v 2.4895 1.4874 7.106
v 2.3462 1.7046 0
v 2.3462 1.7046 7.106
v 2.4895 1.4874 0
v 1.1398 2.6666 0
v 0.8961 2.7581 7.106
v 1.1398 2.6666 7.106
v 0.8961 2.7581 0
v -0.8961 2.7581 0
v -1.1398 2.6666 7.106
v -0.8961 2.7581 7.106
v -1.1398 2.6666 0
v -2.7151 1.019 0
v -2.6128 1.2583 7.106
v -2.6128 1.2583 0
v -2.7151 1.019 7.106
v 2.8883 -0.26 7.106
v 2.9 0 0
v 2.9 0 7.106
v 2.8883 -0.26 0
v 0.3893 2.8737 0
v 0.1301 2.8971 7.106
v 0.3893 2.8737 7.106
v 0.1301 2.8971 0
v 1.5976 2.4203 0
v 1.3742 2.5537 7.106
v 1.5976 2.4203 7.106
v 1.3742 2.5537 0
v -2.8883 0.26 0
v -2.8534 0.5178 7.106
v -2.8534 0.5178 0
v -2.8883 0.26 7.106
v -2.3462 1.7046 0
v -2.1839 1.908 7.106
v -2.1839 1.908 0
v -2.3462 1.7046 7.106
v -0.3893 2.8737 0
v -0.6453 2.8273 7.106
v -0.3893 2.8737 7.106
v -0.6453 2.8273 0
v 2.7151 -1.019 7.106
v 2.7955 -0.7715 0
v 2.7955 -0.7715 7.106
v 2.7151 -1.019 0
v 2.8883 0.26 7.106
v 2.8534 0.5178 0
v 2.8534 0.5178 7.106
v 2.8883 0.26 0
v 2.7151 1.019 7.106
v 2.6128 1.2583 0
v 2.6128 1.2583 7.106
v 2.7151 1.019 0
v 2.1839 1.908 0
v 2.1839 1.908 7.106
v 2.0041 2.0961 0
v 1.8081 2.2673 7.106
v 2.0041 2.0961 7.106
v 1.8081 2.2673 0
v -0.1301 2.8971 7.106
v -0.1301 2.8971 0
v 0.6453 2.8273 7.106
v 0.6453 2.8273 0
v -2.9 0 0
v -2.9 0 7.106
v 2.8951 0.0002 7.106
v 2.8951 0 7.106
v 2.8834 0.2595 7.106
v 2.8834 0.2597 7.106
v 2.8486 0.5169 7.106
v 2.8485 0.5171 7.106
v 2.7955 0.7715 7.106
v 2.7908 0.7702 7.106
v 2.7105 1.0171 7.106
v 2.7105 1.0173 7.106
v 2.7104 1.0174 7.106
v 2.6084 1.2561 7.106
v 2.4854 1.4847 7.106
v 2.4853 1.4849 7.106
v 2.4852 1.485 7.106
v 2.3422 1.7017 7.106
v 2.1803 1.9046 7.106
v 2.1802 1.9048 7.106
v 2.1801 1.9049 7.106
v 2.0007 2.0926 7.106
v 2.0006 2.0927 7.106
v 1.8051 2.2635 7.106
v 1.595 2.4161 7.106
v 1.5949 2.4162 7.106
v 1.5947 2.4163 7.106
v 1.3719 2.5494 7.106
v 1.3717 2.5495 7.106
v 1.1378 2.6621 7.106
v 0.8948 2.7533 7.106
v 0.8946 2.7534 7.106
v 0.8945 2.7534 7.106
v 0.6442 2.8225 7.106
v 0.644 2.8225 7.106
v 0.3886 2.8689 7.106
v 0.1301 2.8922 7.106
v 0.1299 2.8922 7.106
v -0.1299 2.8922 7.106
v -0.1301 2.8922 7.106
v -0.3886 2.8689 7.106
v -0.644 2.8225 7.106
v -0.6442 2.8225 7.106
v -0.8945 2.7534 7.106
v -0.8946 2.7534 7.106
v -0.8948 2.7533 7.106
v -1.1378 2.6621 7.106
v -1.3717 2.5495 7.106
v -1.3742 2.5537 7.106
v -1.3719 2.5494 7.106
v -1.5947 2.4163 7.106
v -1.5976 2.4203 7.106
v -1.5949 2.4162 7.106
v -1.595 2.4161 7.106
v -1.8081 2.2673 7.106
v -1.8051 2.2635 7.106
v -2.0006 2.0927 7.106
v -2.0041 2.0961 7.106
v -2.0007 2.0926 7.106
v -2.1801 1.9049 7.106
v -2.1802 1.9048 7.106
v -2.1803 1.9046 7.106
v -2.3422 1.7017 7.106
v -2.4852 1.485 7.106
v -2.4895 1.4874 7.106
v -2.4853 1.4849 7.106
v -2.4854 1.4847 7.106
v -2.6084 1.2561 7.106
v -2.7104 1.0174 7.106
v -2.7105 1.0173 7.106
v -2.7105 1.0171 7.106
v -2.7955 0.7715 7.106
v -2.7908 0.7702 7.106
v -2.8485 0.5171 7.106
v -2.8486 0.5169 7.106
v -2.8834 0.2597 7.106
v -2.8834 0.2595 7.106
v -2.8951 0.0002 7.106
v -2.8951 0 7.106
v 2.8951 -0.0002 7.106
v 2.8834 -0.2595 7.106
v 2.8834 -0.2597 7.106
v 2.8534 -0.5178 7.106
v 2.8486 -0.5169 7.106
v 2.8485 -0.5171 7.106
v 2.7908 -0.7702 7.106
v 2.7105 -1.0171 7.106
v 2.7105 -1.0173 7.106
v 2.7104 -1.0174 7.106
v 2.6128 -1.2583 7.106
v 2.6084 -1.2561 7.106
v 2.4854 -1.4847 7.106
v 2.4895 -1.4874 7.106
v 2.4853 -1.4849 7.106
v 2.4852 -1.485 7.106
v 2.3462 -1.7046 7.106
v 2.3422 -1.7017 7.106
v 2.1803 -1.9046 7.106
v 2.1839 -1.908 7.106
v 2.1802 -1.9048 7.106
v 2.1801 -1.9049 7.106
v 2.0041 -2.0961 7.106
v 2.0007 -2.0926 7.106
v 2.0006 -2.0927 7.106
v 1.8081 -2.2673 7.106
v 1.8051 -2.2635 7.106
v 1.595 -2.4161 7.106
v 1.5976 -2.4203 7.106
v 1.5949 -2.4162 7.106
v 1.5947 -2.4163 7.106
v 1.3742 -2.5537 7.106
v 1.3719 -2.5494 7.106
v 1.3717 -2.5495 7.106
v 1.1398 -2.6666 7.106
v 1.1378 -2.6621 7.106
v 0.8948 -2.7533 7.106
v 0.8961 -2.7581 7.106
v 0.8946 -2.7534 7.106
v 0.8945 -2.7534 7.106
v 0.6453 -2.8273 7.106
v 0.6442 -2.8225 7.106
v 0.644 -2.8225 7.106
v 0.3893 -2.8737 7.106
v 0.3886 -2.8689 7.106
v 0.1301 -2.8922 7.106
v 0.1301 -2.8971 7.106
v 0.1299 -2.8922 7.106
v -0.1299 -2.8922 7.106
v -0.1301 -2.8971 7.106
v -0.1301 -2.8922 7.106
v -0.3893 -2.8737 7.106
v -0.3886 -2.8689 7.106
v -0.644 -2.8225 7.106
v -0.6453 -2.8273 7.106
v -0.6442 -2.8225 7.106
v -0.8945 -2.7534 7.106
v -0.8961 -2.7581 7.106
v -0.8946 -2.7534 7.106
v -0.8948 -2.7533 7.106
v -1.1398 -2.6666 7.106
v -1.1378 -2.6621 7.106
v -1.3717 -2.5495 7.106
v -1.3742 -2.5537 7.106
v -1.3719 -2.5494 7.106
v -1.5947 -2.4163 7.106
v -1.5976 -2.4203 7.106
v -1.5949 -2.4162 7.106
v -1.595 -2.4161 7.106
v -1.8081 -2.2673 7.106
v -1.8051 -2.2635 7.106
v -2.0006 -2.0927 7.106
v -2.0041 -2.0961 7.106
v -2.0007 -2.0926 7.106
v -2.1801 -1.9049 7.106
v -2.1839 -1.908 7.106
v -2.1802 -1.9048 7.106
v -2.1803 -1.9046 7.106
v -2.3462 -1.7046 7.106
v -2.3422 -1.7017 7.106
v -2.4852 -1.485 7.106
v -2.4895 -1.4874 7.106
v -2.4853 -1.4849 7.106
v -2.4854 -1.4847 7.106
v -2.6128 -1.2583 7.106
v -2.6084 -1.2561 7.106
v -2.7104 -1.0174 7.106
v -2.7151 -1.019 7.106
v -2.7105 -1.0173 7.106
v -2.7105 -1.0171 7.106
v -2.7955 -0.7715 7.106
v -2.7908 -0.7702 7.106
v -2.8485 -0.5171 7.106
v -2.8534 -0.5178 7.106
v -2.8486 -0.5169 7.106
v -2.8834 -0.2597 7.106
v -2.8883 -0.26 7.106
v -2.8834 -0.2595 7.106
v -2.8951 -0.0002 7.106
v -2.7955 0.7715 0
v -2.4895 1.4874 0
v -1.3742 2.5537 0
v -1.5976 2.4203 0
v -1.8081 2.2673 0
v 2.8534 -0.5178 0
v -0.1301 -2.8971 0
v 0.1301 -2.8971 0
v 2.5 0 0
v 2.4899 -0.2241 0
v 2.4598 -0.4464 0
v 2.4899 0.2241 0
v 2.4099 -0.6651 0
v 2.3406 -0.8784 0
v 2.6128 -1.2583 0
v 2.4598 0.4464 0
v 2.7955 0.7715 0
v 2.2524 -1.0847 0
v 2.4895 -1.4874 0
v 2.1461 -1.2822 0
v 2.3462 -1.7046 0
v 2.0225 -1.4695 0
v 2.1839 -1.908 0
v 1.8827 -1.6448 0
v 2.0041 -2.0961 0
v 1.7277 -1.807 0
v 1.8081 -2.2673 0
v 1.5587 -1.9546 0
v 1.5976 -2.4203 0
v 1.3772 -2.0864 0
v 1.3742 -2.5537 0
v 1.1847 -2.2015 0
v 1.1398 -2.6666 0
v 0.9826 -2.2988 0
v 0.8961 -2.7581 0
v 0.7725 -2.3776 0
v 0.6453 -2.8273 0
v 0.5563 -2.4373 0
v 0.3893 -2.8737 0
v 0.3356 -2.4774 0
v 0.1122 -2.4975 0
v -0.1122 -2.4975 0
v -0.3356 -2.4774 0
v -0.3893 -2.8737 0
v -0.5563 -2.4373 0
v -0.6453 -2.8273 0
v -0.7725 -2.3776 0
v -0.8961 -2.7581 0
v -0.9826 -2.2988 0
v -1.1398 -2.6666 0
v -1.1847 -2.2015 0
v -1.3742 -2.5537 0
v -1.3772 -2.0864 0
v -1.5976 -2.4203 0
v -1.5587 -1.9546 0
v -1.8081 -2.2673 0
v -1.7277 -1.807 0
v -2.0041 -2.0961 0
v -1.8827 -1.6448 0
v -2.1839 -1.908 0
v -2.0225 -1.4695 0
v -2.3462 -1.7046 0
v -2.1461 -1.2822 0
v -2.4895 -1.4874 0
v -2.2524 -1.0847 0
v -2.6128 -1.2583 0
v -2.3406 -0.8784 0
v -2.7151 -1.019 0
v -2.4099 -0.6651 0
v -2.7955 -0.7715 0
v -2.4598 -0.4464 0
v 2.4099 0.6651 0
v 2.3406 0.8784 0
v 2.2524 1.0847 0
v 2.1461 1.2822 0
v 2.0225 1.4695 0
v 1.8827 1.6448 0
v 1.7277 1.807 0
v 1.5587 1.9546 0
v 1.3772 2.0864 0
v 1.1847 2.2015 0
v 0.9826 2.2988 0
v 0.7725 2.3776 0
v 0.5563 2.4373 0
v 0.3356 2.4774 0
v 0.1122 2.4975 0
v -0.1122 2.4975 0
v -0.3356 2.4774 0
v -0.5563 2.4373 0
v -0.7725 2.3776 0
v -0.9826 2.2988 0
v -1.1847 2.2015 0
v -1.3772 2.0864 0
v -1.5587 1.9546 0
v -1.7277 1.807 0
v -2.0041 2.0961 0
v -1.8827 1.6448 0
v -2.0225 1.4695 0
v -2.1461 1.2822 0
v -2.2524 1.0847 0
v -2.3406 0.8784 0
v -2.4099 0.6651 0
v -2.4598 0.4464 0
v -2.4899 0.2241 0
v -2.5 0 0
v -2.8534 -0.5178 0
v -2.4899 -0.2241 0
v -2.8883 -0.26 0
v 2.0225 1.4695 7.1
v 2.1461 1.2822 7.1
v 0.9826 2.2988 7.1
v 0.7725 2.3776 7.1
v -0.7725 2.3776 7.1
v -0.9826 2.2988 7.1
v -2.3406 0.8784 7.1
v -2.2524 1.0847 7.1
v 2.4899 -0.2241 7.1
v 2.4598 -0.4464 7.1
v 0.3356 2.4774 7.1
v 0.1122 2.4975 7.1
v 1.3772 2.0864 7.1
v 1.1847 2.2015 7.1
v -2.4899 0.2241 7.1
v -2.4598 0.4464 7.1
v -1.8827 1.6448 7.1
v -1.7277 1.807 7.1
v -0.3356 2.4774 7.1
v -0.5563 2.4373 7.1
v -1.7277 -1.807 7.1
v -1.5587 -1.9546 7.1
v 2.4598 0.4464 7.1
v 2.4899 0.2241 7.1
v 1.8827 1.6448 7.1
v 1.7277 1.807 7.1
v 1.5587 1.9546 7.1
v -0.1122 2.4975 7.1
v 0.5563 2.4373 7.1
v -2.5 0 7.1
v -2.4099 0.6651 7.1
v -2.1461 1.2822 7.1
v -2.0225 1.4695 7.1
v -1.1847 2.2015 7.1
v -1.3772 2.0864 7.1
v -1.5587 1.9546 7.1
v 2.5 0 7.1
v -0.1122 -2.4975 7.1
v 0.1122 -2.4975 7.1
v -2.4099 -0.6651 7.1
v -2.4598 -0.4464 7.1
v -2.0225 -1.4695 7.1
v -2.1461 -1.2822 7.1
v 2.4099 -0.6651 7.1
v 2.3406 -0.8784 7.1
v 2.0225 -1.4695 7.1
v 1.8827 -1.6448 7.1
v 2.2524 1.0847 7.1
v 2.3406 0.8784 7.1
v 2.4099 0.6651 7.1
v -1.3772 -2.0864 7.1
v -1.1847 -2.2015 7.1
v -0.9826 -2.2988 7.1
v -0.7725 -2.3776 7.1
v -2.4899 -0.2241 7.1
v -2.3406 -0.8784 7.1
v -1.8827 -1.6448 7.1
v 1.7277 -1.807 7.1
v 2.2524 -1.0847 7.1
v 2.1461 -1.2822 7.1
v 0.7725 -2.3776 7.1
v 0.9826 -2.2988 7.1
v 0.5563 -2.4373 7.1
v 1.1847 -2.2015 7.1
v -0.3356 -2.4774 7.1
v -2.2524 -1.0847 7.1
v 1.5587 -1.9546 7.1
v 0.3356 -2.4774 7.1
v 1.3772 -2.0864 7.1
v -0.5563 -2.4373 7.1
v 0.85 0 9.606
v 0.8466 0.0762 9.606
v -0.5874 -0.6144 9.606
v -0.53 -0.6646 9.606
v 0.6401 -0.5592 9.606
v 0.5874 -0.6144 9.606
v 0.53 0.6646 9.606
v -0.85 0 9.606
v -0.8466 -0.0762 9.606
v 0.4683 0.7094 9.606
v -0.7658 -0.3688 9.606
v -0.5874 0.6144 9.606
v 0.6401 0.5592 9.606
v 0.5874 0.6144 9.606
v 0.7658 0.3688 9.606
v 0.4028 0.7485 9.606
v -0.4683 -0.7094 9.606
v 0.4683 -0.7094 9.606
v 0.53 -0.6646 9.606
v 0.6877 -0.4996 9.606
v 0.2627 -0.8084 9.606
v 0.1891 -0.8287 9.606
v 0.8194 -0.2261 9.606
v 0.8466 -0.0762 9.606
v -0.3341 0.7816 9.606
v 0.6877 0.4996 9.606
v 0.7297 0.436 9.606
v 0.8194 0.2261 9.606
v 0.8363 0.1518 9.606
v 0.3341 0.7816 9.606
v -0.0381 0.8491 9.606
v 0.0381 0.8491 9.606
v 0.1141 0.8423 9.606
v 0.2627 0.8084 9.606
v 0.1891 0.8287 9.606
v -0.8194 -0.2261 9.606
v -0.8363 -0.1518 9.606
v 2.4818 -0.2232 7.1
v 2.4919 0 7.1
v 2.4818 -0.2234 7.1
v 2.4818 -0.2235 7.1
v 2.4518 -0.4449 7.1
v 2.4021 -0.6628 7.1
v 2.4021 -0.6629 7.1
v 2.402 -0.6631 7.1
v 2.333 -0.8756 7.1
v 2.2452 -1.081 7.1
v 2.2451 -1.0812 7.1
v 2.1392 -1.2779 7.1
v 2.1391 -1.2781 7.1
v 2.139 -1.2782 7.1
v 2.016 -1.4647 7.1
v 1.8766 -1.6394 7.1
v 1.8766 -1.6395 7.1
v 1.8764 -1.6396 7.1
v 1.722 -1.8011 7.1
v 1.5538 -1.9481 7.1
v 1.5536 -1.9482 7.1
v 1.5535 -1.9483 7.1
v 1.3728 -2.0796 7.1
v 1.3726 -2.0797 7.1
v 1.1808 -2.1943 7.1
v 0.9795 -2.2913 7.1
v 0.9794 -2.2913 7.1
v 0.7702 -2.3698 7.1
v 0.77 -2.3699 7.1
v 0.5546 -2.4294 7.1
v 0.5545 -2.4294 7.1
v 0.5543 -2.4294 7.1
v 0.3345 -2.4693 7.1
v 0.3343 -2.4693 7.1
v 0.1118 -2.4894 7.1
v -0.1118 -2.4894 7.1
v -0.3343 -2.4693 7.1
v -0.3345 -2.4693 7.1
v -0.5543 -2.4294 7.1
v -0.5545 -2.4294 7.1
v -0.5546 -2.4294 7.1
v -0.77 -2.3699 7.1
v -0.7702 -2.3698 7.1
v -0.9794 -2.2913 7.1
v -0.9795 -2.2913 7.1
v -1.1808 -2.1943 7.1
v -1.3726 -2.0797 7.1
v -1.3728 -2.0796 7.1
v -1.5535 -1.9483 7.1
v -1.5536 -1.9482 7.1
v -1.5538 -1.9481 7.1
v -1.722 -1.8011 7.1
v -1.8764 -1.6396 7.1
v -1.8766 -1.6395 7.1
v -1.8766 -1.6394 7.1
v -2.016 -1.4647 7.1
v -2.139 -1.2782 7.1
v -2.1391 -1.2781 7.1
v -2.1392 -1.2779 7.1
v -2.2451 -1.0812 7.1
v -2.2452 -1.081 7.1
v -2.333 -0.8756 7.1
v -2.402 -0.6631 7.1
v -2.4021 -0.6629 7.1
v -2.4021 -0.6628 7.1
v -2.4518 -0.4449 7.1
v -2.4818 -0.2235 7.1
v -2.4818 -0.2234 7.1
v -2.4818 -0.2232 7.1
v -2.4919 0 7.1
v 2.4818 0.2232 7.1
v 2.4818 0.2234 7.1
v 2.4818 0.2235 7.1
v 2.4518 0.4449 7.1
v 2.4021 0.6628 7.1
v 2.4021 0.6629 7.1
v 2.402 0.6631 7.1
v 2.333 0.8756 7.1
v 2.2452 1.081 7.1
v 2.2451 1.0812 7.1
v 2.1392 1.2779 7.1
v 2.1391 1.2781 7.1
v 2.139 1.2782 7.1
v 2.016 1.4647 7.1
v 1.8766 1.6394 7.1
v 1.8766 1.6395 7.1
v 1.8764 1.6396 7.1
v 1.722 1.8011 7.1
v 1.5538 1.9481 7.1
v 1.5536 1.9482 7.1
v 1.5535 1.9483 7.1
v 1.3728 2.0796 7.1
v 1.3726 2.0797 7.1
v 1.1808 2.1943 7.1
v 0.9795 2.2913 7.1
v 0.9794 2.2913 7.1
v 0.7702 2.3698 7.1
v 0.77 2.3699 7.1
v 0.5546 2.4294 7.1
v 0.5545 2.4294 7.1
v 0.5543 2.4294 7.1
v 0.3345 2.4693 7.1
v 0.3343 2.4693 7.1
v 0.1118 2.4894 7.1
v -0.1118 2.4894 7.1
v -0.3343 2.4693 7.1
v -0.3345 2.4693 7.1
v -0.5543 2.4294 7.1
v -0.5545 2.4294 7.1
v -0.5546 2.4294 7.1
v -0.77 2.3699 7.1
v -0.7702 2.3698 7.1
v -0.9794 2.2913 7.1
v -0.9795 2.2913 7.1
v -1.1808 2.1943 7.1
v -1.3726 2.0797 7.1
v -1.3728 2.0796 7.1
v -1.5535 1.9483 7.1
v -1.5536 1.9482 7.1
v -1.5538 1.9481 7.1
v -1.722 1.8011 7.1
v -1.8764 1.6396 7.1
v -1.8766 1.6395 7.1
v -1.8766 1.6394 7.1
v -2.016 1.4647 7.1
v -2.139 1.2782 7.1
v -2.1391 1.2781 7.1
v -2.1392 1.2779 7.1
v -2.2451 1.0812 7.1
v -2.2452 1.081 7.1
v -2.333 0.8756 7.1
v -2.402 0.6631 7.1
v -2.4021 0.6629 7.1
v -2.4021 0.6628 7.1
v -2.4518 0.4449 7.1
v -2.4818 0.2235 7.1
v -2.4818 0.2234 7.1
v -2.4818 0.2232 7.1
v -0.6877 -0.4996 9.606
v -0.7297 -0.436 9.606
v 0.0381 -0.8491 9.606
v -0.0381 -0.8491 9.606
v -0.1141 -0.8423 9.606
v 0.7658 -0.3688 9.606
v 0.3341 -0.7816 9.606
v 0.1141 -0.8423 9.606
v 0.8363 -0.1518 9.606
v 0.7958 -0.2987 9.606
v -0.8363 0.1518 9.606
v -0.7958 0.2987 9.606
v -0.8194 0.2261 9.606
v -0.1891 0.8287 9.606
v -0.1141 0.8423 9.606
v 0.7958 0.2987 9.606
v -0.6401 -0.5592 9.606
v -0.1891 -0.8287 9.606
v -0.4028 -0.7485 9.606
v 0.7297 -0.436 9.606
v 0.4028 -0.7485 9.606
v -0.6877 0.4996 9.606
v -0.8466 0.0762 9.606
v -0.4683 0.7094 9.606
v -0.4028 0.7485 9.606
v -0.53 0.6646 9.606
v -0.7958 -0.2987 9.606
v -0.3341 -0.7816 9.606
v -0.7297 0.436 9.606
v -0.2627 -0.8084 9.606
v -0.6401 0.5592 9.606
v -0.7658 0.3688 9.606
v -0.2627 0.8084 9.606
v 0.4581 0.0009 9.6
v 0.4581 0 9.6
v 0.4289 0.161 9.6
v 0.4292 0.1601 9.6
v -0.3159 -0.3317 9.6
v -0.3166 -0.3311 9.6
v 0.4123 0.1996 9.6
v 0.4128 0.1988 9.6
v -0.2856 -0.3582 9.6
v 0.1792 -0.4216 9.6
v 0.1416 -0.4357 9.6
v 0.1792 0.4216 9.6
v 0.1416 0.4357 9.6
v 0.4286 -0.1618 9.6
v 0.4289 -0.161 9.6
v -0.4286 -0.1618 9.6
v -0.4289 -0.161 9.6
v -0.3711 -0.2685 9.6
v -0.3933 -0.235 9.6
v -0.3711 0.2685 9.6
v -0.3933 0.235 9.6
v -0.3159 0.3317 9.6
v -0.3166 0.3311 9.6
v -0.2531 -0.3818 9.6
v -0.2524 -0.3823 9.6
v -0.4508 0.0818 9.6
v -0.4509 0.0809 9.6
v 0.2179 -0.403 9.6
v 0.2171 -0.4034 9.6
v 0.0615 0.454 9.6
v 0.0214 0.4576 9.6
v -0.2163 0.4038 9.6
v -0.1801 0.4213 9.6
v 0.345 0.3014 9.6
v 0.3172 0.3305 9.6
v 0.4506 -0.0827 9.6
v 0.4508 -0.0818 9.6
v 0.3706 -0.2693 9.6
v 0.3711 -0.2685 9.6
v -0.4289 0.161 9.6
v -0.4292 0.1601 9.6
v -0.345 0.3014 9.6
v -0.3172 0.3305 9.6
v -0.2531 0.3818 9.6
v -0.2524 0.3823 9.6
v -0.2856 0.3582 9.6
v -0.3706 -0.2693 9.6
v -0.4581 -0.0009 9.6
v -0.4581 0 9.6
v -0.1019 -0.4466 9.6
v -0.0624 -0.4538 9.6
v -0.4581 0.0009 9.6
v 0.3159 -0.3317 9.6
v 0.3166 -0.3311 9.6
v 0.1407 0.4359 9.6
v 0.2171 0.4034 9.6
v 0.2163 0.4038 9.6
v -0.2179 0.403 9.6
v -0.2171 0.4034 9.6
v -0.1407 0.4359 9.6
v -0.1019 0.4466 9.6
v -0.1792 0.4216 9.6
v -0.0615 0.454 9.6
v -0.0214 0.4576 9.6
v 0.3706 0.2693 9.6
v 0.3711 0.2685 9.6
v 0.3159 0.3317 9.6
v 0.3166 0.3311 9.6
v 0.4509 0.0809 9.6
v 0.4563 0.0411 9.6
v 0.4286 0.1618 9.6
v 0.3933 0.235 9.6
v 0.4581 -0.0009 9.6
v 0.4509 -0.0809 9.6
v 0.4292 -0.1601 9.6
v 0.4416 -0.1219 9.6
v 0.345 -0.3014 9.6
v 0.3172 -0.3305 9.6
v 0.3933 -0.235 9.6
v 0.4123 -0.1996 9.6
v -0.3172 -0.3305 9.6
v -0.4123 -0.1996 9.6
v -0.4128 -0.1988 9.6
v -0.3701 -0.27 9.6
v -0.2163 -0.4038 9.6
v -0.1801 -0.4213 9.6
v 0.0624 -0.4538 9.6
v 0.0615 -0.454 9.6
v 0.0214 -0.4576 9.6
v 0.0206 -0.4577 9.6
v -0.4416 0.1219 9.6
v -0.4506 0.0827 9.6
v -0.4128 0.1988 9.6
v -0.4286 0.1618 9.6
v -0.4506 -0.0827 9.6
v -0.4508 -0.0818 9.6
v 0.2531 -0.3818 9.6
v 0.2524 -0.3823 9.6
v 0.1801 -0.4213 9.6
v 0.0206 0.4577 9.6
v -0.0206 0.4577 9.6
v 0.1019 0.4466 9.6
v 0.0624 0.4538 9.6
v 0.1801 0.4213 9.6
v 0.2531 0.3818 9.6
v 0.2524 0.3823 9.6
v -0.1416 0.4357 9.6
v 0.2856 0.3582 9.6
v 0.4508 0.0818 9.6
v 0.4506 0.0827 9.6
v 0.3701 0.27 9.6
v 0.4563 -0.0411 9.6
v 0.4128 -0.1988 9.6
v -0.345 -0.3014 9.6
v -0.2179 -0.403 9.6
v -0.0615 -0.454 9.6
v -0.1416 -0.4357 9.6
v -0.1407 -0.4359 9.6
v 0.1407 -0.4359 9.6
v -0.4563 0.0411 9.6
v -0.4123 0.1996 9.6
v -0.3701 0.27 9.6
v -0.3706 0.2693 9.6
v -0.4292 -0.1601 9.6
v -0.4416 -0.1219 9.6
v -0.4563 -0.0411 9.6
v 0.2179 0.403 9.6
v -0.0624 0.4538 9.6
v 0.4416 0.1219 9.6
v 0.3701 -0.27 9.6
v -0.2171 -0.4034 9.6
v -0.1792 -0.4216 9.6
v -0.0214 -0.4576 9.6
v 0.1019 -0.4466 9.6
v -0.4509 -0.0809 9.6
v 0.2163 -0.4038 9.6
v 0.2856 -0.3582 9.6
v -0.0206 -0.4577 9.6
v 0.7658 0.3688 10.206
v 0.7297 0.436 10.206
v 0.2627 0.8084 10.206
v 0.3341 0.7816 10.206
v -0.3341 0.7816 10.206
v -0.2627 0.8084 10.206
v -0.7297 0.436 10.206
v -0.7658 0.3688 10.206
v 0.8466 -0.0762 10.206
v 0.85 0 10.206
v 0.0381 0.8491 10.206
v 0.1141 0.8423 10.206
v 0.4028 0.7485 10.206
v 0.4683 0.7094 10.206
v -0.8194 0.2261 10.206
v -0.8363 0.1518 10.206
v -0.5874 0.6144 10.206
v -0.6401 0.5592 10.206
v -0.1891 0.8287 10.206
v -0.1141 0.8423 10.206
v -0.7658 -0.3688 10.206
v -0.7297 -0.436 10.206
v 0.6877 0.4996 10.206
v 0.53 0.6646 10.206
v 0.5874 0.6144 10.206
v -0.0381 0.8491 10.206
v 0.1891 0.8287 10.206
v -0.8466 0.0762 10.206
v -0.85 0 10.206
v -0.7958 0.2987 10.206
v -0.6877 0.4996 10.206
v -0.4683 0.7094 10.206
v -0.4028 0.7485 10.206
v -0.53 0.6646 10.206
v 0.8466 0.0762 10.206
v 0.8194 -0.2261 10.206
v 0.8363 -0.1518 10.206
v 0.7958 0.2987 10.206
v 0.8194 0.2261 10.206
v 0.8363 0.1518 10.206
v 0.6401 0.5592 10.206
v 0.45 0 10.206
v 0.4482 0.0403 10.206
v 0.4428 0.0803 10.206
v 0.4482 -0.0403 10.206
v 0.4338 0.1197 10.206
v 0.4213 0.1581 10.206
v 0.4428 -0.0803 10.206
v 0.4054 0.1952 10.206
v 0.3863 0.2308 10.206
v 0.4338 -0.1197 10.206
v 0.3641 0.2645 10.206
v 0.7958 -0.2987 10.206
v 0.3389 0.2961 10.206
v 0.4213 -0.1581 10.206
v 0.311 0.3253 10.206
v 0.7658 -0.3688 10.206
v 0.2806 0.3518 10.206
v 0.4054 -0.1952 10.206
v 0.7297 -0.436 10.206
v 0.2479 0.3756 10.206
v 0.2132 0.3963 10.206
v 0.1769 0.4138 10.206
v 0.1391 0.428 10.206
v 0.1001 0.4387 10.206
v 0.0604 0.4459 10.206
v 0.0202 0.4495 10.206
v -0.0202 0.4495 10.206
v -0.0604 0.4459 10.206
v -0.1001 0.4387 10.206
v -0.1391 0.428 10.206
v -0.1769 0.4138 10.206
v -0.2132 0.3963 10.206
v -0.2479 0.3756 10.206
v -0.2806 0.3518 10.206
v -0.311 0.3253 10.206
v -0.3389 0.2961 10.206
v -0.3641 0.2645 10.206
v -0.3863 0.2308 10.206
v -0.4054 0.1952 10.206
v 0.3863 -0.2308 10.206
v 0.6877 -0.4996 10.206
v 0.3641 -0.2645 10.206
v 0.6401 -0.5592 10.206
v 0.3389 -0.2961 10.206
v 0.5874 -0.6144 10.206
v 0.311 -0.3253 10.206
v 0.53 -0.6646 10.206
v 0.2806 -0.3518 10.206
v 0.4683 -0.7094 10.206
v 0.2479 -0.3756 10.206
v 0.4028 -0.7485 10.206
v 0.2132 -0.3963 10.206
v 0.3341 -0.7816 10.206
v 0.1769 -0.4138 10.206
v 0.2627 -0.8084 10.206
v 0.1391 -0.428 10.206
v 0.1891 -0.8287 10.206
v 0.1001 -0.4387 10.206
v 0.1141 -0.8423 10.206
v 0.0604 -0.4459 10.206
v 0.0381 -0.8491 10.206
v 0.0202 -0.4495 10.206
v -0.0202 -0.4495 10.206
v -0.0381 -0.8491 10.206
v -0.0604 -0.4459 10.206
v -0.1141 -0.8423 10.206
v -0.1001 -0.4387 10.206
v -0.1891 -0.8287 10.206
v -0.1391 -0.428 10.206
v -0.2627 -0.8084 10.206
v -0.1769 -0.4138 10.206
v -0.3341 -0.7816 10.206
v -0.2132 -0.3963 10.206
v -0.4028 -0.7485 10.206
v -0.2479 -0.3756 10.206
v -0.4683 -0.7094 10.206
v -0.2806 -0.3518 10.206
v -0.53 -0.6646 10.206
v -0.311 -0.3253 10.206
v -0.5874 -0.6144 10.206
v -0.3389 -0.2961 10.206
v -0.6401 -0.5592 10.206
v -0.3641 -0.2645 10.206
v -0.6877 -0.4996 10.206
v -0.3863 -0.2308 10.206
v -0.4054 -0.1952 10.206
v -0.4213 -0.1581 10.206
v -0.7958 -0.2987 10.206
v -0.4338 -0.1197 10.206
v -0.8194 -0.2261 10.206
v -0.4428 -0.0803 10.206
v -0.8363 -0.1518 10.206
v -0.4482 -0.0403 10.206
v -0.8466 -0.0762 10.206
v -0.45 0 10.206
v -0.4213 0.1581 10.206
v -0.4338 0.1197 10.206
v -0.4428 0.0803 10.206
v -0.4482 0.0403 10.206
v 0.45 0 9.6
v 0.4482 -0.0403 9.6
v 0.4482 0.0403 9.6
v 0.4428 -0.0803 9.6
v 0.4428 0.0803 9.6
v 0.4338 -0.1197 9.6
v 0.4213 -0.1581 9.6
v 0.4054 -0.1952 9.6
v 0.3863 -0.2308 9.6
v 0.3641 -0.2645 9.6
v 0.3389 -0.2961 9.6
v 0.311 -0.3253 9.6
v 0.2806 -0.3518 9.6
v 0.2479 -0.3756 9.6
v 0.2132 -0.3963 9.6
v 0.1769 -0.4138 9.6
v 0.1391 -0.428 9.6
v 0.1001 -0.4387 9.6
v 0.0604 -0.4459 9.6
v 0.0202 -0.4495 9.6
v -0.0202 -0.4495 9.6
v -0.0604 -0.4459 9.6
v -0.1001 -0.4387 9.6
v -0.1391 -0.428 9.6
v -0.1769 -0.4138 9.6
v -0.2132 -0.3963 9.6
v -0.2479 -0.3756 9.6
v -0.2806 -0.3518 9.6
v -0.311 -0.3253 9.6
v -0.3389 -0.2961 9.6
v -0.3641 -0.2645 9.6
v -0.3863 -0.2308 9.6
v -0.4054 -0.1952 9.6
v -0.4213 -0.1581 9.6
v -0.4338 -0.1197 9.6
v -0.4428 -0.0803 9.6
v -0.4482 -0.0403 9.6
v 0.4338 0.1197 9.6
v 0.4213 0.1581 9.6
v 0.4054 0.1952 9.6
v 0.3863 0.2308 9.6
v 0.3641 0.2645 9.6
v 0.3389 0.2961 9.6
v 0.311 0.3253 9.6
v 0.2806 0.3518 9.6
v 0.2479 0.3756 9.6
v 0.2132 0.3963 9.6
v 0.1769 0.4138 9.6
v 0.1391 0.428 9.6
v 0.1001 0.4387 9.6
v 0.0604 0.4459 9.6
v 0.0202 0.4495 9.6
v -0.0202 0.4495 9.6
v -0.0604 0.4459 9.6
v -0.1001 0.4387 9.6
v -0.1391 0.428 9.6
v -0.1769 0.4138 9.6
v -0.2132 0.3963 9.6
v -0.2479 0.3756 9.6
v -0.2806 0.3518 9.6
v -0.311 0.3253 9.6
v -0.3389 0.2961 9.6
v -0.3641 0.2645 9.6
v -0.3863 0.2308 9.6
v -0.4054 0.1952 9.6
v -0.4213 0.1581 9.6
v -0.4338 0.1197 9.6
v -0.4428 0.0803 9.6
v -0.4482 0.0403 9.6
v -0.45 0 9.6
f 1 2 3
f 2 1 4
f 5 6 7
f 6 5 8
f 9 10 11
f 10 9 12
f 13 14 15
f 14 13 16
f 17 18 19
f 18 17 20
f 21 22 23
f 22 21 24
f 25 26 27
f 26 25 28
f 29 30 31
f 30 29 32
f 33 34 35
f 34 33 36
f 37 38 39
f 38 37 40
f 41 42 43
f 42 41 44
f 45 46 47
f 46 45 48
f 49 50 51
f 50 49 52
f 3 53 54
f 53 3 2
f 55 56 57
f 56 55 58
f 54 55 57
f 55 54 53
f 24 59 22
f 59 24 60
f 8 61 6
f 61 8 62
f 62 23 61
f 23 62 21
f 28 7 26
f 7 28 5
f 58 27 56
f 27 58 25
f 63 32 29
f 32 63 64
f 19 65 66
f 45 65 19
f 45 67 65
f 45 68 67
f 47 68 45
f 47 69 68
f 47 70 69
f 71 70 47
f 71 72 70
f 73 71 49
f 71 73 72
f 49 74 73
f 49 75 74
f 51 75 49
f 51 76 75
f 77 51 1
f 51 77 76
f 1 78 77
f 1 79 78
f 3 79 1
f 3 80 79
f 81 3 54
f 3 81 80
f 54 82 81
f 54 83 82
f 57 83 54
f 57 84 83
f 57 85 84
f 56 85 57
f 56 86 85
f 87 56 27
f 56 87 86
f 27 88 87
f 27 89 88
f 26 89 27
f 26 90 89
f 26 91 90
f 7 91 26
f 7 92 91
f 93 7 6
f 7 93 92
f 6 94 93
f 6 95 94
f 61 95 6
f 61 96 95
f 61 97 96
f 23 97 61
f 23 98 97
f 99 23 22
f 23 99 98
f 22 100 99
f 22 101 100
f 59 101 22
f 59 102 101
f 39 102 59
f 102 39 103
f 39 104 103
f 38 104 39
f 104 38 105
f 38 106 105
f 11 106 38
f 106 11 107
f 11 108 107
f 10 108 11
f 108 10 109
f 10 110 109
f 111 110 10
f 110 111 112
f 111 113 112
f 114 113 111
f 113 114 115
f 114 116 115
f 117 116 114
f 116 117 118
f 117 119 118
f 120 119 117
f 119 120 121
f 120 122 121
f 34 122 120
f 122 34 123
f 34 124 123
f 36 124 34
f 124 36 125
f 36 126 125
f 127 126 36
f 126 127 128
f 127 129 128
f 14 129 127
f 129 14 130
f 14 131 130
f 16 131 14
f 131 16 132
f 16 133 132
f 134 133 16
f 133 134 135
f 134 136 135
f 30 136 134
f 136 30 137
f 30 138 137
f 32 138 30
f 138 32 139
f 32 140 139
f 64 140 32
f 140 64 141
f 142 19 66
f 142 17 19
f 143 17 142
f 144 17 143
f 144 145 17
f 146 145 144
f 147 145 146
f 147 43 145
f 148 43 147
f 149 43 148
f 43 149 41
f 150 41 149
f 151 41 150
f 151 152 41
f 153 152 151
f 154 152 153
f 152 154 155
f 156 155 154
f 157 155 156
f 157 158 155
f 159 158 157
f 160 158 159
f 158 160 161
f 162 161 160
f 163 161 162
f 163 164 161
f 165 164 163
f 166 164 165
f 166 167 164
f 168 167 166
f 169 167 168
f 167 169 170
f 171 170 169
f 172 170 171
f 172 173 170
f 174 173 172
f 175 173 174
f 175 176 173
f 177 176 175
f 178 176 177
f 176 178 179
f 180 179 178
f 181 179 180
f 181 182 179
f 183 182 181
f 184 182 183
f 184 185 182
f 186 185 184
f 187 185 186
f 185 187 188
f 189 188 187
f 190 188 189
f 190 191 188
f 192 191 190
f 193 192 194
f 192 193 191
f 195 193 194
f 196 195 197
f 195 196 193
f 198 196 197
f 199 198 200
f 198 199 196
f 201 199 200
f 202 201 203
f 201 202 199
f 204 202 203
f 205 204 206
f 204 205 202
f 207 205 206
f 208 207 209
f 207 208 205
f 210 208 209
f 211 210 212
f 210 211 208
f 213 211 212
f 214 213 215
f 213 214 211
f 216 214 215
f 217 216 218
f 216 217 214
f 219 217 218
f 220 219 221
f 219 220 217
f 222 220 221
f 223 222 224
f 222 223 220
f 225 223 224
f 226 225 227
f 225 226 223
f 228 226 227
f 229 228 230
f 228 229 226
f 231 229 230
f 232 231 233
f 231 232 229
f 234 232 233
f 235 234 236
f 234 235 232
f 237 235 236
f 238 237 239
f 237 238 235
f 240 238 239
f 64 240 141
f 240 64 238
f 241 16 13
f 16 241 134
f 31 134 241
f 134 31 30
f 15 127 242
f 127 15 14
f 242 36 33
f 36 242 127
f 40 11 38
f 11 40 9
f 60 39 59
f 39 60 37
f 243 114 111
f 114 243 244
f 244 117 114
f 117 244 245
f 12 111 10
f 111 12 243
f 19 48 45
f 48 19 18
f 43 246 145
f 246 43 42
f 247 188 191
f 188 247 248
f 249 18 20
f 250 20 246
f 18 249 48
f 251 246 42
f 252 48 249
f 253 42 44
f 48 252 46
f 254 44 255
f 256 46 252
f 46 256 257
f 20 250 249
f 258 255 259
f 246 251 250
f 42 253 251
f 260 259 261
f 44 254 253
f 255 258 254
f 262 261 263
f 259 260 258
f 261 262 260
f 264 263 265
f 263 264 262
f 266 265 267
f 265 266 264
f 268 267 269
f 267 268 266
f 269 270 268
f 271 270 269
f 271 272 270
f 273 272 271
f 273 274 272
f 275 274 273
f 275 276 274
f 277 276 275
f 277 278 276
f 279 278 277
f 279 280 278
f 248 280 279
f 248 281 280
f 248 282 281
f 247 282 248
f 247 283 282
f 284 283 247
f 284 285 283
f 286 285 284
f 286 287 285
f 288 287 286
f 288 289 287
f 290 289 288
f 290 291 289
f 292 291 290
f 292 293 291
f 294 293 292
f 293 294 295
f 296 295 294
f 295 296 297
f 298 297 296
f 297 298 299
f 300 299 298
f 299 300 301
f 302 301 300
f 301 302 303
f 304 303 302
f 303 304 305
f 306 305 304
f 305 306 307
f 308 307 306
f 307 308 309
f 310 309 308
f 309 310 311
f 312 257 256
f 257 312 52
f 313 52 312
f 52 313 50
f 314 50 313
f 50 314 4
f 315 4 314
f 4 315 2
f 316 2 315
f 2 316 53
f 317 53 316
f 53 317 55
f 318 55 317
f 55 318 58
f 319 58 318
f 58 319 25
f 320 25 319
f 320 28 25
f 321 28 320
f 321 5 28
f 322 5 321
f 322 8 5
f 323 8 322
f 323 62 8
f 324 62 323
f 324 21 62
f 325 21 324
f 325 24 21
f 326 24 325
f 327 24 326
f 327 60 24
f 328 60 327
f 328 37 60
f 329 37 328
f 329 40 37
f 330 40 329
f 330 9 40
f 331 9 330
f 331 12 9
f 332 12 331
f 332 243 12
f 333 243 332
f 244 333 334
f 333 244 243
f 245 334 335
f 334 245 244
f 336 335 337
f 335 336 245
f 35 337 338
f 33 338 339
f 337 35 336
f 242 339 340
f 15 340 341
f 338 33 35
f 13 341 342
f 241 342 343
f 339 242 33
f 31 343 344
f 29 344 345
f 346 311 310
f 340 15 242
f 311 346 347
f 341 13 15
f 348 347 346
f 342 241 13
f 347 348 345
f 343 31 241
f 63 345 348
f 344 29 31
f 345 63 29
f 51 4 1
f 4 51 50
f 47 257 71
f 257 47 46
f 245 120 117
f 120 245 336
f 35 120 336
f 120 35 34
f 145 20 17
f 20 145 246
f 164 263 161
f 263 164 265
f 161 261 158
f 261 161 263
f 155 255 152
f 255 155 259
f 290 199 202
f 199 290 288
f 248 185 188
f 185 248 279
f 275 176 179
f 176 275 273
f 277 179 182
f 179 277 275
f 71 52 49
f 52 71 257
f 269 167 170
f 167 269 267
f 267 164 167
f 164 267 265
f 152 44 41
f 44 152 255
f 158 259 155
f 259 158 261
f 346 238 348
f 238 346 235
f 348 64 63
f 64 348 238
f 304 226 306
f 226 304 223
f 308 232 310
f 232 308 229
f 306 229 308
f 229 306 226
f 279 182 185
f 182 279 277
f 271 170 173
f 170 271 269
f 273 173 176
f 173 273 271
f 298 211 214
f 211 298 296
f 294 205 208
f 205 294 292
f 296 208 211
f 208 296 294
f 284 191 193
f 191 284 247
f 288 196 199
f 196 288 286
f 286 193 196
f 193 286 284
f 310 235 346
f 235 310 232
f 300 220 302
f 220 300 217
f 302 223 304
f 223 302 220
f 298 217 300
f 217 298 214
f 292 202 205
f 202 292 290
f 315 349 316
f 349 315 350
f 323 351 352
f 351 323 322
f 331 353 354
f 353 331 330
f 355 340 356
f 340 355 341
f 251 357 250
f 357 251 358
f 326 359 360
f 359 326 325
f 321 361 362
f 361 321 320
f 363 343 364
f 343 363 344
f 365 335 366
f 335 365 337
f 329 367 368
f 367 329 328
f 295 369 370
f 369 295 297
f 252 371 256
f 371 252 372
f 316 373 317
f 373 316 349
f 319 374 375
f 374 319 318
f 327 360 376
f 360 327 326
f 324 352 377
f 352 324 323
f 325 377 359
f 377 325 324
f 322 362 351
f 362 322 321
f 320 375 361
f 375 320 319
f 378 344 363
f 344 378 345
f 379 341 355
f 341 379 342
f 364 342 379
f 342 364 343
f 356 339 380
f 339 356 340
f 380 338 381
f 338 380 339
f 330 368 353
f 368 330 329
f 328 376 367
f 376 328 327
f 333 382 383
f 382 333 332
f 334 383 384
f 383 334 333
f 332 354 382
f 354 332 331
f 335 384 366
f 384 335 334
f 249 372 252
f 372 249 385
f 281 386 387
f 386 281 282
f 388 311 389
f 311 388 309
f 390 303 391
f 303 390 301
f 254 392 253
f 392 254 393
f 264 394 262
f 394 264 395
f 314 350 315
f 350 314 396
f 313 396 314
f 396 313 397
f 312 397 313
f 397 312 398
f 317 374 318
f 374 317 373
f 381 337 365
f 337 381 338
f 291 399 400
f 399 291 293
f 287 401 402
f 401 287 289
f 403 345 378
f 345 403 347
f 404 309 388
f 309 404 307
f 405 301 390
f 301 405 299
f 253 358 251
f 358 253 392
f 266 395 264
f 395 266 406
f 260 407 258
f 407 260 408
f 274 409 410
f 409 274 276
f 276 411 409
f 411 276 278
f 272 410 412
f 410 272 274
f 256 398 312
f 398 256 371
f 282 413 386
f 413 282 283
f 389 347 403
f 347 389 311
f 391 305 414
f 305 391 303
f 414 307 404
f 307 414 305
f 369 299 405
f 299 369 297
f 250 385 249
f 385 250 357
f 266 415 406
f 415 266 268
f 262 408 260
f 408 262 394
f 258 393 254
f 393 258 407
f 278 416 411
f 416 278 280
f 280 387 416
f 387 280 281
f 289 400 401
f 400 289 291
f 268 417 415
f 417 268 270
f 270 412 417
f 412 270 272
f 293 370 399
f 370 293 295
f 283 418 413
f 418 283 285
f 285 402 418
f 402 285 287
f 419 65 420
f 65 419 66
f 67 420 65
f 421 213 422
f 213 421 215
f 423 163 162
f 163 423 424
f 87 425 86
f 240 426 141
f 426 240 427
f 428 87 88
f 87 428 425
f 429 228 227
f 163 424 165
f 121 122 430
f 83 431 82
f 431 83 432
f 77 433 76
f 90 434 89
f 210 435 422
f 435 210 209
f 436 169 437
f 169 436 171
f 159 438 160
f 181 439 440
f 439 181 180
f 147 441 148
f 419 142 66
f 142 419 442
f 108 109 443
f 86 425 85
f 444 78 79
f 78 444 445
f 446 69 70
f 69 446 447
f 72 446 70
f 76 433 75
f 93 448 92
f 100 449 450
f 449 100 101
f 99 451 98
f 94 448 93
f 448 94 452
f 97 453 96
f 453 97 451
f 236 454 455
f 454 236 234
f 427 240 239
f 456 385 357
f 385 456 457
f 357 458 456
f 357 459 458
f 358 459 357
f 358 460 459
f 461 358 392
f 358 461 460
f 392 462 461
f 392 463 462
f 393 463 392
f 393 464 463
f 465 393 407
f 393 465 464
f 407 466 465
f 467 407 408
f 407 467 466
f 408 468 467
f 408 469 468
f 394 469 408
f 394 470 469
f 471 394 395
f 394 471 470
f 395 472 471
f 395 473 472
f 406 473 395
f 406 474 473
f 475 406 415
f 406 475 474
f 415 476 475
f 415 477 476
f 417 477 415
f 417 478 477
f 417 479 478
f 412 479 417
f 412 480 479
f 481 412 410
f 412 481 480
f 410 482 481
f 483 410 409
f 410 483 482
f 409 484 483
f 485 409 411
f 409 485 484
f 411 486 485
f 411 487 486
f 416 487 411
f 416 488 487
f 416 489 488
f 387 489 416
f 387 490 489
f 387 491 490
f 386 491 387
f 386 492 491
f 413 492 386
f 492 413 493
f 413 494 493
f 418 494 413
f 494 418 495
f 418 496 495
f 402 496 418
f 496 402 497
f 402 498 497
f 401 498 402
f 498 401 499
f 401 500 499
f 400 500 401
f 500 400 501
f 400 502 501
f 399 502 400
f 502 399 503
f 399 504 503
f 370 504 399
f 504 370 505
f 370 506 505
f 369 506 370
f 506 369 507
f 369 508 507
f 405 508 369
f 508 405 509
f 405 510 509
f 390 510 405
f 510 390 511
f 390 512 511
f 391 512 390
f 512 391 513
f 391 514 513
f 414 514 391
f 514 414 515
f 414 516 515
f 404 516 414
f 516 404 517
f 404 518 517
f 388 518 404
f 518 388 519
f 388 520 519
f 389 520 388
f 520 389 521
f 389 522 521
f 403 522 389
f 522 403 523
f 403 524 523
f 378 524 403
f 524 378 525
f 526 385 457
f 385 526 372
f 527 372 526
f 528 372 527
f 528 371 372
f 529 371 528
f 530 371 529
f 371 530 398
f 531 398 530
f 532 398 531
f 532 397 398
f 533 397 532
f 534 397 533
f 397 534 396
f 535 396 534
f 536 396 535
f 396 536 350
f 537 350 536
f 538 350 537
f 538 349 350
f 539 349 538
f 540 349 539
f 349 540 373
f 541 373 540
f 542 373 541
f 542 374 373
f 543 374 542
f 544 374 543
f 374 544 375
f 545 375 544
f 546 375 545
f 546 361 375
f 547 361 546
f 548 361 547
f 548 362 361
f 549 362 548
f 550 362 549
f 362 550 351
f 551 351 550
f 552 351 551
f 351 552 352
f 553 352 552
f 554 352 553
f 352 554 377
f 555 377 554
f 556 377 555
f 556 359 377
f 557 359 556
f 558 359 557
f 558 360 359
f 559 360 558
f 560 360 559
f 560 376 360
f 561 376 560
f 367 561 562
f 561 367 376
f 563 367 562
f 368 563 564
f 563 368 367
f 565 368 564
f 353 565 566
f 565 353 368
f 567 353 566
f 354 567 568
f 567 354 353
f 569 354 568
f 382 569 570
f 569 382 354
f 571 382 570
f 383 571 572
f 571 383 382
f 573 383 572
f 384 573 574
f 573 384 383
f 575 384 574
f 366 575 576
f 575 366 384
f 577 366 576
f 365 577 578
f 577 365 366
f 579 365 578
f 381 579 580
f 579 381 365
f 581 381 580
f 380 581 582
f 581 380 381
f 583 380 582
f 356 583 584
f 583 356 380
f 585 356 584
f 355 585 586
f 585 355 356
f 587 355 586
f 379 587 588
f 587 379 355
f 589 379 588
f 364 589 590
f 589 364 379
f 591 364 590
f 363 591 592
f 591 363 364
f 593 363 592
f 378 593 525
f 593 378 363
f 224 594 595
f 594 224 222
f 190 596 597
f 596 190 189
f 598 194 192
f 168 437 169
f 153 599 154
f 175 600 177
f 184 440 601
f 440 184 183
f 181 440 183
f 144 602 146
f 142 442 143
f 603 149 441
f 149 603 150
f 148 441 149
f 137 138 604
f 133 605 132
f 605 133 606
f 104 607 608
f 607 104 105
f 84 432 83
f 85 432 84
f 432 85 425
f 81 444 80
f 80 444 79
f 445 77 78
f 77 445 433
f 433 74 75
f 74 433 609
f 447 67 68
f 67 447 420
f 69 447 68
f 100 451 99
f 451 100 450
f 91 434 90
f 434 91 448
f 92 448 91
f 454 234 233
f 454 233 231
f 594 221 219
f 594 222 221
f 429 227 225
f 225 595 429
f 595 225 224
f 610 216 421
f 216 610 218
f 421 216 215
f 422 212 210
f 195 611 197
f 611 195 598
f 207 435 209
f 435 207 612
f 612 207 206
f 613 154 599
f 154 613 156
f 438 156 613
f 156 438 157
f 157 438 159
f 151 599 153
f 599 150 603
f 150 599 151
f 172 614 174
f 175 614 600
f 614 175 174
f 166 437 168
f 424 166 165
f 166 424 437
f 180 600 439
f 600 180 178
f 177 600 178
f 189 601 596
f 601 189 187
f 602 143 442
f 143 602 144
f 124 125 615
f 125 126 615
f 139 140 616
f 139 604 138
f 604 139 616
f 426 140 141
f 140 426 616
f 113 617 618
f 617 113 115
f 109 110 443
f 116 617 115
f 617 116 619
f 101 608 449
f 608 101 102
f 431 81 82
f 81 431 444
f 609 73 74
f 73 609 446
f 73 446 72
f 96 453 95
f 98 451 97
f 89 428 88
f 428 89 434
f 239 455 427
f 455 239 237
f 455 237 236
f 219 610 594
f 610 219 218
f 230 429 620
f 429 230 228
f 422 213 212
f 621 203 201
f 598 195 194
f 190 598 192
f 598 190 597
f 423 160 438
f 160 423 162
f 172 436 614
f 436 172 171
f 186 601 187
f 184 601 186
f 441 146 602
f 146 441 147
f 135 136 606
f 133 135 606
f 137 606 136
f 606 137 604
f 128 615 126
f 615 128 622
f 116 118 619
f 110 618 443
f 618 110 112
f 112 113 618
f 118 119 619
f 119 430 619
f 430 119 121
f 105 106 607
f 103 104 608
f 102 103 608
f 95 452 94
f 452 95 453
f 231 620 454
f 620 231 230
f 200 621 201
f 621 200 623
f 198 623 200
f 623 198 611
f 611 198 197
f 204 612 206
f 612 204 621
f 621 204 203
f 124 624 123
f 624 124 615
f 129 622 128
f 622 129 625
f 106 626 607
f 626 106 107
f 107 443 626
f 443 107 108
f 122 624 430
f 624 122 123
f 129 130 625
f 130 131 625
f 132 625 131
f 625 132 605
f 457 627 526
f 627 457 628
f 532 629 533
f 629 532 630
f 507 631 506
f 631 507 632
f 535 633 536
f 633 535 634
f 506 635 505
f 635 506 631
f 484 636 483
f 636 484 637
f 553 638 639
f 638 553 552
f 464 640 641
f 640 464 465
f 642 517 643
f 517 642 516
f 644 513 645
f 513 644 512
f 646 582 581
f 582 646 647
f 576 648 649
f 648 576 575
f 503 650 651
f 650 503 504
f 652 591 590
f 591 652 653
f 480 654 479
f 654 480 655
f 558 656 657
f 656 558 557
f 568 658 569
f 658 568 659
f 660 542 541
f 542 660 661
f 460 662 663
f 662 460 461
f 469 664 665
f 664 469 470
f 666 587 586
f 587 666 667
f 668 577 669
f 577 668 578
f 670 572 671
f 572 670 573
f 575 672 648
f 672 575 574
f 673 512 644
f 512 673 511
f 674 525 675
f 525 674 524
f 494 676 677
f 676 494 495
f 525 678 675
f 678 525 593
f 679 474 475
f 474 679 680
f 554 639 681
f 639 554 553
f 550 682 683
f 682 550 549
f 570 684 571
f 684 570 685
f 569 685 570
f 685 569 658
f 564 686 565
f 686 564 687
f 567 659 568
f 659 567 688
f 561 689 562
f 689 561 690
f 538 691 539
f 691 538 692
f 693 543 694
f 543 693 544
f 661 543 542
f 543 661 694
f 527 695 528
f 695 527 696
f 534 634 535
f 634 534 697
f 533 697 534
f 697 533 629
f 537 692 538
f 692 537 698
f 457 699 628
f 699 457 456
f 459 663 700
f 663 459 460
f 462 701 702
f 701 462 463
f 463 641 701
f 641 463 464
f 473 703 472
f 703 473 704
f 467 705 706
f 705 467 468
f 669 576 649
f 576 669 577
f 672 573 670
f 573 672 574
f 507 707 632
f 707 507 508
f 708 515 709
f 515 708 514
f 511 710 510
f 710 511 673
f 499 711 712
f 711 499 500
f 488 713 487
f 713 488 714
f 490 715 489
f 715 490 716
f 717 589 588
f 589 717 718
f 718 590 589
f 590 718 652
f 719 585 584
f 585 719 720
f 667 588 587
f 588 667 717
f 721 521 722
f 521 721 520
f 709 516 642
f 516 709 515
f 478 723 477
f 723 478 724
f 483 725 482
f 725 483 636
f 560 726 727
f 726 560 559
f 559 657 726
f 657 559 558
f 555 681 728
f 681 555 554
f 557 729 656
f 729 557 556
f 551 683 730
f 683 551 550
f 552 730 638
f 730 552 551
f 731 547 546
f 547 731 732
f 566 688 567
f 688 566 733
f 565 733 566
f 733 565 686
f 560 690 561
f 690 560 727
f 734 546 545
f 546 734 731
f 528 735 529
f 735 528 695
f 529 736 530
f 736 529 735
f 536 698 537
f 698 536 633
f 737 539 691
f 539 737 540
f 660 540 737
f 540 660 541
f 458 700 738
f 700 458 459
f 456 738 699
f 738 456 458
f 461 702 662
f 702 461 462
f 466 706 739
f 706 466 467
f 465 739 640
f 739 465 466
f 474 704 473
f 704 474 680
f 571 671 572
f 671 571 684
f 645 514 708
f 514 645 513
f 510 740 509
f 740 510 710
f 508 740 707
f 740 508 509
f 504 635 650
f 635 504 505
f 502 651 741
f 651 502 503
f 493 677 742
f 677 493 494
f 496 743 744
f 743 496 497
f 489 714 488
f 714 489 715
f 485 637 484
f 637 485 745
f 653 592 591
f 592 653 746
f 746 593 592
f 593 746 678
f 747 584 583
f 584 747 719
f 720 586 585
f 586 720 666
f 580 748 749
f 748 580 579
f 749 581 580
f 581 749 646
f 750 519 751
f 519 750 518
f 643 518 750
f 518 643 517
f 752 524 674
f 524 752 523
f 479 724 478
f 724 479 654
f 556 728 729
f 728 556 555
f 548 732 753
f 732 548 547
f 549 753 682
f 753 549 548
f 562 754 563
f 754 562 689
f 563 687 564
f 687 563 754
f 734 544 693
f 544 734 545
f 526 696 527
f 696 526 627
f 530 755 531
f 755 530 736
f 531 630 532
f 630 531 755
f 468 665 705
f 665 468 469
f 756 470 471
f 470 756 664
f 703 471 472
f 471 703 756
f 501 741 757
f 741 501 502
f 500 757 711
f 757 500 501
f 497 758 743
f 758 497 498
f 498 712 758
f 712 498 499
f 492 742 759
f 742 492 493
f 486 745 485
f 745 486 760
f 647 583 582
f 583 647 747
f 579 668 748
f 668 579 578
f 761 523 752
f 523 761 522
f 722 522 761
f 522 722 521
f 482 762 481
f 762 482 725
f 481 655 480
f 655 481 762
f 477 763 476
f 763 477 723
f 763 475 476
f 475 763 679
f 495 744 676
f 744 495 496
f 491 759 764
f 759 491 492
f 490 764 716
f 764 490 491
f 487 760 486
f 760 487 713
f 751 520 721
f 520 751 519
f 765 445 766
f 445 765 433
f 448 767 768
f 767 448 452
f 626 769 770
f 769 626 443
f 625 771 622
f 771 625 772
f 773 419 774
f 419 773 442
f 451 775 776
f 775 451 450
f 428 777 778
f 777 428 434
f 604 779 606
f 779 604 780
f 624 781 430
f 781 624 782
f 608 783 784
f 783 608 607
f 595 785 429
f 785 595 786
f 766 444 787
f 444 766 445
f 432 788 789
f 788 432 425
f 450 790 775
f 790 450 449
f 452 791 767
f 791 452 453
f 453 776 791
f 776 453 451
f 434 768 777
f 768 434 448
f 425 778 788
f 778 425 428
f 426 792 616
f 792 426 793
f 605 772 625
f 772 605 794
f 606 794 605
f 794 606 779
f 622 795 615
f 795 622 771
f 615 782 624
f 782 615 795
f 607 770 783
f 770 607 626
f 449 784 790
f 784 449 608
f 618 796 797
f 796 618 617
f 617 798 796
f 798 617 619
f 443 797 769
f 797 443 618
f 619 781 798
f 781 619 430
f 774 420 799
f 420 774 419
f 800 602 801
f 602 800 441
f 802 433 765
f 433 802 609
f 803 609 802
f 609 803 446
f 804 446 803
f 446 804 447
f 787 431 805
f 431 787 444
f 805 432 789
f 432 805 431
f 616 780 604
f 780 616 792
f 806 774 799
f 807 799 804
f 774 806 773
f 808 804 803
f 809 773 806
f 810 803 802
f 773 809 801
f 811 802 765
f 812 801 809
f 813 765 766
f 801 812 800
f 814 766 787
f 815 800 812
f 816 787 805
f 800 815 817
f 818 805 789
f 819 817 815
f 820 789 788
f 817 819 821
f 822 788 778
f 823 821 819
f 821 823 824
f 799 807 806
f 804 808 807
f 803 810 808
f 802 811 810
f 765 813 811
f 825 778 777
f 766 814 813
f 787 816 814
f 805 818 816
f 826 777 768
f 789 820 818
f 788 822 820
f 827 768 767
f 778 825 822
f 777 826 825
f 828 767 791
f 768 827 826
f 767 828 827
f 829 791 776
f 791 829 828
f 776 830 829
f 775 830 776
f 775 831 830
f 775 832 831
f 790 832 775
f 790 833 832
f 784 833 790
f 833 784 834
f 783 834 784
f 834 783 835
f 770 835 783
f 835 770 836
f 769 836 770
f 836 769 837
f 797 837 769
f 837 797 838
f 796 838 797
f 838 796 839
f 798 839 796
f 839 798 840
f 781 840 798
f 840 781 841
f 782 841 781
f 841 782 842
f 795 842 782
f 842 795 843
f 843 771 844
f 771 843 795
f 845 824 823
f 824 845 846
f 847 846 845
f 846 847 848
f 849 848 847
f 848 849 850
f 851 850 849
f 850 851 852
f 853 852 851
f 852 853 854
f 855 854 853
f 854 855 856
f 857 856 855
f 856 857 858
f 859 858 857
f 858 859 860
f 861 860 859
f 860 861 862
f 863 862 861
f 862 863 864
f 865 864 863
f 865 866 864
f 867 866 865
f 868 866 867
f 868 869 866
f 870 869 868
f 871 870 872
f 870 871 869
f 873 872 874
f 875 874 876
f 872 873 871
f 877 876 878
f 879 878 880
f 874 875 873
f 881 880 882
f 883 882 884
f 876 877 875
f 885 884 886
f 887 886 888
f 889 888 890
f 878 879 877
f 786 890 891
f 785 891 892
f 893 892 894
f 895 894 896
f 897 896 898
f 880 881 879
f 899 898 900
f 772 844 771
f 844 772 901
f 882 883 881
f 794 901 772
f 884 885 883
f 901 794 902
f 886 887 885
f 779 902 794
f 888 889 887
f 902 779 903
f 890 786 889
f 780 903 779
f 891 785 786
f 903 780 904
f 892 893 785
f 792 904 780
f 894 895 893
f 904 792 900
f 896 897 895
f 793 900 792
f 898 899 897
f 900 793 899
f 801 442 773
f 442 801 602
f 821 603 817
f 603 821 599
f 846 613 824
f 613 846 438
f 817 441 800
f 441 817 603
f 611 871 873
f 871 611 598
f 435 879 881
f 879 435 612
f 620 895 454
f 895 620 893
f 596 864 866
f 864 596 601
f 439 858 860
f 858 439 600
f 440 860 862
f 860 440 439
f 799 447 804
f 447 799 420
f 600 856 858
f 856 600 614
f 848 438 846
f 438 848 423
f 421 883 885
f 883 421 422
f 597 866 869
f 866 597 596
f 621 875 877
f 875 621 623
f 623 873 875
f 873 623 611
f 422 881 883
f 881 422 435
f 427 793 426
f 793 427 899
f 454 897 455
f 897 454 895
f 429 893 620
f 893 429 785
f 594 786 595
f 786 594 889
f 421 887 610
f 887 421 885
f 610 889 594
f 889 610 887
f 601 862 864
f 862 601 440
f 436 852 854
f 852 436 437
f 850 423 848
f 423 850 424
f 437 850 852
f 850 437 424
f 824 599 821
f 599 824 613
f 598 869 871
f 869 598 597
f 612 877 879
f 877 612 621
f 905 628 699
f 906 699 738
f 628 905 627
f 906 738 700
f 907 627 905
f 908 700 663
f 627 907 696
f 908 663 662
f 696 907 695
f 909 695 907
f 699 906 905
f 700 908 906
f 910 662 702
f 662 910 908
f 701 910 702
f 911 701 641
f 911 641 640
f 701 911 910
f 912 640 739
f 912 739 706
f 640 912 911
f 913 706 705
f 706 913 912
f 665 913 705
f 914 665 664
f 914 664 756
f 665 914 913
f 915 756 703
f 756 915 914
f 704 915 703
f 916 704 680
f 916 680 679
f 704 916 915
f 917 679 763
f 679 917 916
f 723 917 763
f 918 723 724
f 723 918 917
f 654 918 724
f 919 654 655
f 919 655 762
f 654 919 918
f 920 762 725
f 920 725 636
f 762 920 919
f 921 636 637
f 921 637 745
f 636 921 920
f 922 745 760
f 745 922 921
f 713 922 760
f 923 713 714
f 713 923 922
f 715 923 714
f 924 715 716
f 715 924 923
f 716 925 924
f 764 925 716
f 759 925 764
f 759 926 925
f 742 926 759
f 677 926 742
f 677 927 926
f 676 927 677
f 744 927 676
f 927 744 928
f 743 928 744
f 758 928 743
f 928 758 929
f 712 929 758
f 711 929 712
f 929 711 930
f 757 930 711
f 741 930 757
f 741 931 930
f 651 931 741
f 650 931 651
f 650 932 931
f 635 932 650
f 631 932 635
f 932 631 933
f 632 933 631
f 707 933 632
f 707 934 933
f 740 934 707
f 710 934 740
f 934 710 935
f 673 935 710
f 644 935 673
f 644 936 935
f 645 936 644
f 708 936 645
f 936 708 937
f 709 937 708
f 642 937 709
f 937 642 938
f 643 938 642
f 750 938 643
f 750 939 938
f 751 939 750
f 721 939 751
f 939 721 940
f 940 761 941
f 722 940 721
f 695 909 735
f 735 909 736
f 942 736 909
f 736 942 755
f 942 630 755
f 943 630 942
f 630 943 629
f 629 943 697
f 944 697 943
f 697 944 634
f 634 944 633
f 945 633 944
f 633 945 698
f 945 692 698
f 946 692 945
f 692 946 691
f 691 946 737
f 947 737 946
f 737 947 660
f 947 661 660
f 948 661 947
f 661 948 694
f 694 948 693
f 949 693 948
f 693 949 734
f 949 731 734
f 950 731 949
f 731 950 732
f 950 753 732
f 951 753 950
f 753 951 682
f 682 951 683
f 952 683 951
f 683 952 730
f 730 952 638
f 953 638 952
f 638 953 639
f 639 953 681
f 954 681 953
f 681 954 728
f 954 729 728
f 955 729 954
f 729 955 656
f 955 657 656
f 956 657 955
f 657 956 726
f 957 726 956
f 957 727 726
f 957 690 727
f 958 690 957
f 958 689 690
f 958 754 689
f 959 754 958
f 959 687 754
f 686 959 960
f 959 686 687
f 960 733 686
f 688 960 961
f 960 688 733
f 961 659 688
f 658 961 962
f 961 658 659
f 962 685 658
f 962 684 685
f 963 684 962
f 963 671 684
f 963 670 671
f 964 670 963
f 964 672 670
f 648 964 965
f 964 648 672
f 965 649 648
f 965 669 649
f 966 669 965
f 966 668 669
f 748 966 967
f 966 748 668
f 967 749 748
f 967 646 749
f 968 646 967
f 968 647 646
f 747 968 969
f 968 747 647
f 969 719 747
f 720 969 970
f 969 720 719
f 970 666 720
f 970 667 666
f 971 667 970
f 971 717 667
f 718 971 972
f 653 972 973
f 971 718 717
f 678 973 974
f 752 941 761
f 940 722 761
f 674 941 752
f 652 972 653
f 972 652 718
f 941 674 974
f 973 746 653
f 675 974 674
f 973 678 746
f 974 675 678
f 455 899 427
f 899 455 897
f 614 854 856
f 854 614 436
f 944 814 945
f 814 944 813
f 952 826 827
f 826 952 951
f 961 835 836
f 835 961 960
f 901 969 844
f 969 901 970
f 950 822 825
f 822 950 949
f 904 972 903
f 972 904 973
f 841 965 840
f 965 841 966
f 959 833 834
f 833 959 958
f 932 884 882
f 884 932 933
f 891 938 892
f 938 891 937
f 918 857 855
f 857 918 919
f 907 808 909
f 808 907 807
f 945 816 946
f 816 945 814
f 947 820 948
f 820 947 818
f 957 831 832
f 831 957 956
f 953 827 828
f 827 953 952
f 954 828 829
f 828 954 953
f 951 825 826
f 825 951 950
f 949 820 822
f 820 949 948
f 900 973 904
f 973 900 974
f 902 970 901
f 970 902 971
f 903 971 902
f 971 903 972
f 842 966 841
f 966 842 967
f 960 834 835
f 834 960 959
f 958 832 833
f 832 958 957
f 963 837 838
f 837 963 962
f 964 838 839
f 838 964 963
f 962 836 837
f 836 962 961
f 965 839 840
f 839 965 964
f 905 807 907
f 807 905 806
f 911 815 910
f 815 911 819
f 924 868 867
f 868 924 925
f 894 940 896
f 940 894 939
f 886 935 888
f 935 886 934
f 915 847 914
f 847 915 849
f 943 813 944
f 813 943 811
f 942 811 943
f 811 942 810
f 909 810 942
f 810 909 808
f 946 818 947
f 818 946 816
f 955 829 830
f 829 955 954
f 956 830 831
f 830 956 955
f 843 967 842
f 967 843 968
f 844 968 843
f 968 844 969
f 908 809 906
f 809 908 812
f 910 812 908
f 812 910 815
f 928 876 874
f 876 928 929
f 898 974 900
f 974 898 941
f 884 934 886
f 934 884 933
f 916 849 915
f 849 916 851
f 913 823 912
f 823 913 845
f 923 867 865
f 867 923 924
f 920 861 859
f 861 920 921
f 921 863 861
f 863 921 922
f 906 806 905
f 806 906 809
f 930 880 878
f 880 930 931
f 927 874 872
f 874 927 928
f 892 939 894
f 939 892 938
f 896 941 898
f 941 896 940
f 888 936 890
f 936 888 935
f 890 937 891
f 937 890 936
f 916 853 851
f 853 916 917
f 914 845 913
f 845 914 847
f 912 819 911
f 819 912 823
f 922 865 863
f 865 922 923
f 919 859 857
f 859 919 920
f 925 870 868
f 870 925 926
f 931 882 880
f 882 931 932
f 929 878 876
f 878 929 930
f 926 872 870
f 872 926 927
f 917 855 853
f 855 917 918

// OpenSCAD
// file: ProbeTipCoverLib.scad
////////////////////////////////////////////////////////////////
// Scope probe tip protection
// By Nuno João from https://EmbeddedDreams.com
// Released 2020 under Creative Commons 3.0
//
// This creates a cover to protect a scope's probe tip from
// shorting to nearby components when probing a board.
// Scope probes include this accessory, but it can be lost,
// and is tipically larger than I would like them to be...
//


// Parameter defaults are for Rigol RP2200 probes.
module ProbeTipCover (
        InnerDiameter = 5.00,
        BodyLength = 7.10,
        ConeLength = 2.50,
        TipLength = 0.00,
        TipHoleDiameter = 0.90,
        WallThickness = 0.4
)  {
    // Precalcs and other constants
    cType = 0;
    cHeight = 1;
    cDiameter = 2;
    cPreviousDiameter = 3;
    cSmoothness = 70;

    // Tip definition, by vertical segments. Types:
    //  0: cylinder
    //  1: cone, a linear transition between 2 adjacent segments
    //  2: flat, diameter is a center hole's diameter
    cSegments = [
    //  type  height       in/hole-diam      prevDiam
        [ 0,  BodyLength,  InnerDiameter                   ],
        [ 1,  ConeLength,  TipHoleDiameter,  InnerDiameter ],
        [ 0,   TipLength,  TipHoleDiameter                 ],
    ];

    // OpenSCAD's stupid concept of "variable" forces me to this (and more):
    function GetBaseHeight(idx) =
        idx < 0 ?
            0 :
            (cSegments[idx][cHeight] + GetBaseHeight(idx - 1));

    limit = len(cSegments) - 1;
    for (idx = [0 : limit])  {
        section = cSegments[idx];
        type = section[cType];
        height = section[cHeight];
        diameter = section[cDiameter];
        fn = cSmoothness;

        if (height > 0.0)  {
            if (type == 0)  {
                translate([0, 0, GetBaseHeight(idx-1)])
                    difference()  {
                        cylinder(h = height+0.006, d = diameter + WallThickness*2, $fn=fn);
                        translate([0, 0, -0.01])
                            cylinder(h = height * 0.01 + 0.02, d = diameter, $fn=fn);
                            cylinder(h = height + 0.02, d = diameter, $fn=fn);
                    }
            }
            else if (type == 1)  {
                prevDiam = section[cPreviousDiameter];
                outDiam = diameter + WallThickness*2;
                outPrevDiam = prevDiam + WallThickness*2;
                translate([0, 0, GetBaseHeight(idx-1)])
                    difference()  {
                        cylinder(h = height+0.006, d1 = outPrevDiam, d2 = outDiam, $fn=fn);
                        translate([0, 0, -0.01])
                            cylinder(h = height + 0.02, d1 = prevDiam,
                                                        d2 = diameter, $fn=fn);
                    }
            }
            else if (type == 2)  {
                holeDiam = section[cDiameter2];
                echo("hole diam: ", holeDiam);
                translate([0, 0, GetBaseHeight(idx-1) - WallThickness])
                    difference()  {
                        // The flat top slab
                        cylinder(h = WallThickness+0.006, d = diameter + 0.6, $fn=fn);
                        // Hole in the center
                        translate([0, 0, -0.005])
                            cylinder(h = WallThickness*2 + 0.01, d = holeDiam, $fn=fn);
                    }
            }
            else  {
                echo("***** UPS!! Unkonwn type!");
            }
        }
    }
}


/// Test
//ProbeTipCover();
// main file
include <ProbeTipCoverLib.scad>;

// Build it!
ProbeTipCover(
        InnerDiameter = 5.00,
        BodyLength = 7.10,
        ConeLength = 2.50,
        TipLength = 0.60,
        TipHoleDiameter = 0.90
);
